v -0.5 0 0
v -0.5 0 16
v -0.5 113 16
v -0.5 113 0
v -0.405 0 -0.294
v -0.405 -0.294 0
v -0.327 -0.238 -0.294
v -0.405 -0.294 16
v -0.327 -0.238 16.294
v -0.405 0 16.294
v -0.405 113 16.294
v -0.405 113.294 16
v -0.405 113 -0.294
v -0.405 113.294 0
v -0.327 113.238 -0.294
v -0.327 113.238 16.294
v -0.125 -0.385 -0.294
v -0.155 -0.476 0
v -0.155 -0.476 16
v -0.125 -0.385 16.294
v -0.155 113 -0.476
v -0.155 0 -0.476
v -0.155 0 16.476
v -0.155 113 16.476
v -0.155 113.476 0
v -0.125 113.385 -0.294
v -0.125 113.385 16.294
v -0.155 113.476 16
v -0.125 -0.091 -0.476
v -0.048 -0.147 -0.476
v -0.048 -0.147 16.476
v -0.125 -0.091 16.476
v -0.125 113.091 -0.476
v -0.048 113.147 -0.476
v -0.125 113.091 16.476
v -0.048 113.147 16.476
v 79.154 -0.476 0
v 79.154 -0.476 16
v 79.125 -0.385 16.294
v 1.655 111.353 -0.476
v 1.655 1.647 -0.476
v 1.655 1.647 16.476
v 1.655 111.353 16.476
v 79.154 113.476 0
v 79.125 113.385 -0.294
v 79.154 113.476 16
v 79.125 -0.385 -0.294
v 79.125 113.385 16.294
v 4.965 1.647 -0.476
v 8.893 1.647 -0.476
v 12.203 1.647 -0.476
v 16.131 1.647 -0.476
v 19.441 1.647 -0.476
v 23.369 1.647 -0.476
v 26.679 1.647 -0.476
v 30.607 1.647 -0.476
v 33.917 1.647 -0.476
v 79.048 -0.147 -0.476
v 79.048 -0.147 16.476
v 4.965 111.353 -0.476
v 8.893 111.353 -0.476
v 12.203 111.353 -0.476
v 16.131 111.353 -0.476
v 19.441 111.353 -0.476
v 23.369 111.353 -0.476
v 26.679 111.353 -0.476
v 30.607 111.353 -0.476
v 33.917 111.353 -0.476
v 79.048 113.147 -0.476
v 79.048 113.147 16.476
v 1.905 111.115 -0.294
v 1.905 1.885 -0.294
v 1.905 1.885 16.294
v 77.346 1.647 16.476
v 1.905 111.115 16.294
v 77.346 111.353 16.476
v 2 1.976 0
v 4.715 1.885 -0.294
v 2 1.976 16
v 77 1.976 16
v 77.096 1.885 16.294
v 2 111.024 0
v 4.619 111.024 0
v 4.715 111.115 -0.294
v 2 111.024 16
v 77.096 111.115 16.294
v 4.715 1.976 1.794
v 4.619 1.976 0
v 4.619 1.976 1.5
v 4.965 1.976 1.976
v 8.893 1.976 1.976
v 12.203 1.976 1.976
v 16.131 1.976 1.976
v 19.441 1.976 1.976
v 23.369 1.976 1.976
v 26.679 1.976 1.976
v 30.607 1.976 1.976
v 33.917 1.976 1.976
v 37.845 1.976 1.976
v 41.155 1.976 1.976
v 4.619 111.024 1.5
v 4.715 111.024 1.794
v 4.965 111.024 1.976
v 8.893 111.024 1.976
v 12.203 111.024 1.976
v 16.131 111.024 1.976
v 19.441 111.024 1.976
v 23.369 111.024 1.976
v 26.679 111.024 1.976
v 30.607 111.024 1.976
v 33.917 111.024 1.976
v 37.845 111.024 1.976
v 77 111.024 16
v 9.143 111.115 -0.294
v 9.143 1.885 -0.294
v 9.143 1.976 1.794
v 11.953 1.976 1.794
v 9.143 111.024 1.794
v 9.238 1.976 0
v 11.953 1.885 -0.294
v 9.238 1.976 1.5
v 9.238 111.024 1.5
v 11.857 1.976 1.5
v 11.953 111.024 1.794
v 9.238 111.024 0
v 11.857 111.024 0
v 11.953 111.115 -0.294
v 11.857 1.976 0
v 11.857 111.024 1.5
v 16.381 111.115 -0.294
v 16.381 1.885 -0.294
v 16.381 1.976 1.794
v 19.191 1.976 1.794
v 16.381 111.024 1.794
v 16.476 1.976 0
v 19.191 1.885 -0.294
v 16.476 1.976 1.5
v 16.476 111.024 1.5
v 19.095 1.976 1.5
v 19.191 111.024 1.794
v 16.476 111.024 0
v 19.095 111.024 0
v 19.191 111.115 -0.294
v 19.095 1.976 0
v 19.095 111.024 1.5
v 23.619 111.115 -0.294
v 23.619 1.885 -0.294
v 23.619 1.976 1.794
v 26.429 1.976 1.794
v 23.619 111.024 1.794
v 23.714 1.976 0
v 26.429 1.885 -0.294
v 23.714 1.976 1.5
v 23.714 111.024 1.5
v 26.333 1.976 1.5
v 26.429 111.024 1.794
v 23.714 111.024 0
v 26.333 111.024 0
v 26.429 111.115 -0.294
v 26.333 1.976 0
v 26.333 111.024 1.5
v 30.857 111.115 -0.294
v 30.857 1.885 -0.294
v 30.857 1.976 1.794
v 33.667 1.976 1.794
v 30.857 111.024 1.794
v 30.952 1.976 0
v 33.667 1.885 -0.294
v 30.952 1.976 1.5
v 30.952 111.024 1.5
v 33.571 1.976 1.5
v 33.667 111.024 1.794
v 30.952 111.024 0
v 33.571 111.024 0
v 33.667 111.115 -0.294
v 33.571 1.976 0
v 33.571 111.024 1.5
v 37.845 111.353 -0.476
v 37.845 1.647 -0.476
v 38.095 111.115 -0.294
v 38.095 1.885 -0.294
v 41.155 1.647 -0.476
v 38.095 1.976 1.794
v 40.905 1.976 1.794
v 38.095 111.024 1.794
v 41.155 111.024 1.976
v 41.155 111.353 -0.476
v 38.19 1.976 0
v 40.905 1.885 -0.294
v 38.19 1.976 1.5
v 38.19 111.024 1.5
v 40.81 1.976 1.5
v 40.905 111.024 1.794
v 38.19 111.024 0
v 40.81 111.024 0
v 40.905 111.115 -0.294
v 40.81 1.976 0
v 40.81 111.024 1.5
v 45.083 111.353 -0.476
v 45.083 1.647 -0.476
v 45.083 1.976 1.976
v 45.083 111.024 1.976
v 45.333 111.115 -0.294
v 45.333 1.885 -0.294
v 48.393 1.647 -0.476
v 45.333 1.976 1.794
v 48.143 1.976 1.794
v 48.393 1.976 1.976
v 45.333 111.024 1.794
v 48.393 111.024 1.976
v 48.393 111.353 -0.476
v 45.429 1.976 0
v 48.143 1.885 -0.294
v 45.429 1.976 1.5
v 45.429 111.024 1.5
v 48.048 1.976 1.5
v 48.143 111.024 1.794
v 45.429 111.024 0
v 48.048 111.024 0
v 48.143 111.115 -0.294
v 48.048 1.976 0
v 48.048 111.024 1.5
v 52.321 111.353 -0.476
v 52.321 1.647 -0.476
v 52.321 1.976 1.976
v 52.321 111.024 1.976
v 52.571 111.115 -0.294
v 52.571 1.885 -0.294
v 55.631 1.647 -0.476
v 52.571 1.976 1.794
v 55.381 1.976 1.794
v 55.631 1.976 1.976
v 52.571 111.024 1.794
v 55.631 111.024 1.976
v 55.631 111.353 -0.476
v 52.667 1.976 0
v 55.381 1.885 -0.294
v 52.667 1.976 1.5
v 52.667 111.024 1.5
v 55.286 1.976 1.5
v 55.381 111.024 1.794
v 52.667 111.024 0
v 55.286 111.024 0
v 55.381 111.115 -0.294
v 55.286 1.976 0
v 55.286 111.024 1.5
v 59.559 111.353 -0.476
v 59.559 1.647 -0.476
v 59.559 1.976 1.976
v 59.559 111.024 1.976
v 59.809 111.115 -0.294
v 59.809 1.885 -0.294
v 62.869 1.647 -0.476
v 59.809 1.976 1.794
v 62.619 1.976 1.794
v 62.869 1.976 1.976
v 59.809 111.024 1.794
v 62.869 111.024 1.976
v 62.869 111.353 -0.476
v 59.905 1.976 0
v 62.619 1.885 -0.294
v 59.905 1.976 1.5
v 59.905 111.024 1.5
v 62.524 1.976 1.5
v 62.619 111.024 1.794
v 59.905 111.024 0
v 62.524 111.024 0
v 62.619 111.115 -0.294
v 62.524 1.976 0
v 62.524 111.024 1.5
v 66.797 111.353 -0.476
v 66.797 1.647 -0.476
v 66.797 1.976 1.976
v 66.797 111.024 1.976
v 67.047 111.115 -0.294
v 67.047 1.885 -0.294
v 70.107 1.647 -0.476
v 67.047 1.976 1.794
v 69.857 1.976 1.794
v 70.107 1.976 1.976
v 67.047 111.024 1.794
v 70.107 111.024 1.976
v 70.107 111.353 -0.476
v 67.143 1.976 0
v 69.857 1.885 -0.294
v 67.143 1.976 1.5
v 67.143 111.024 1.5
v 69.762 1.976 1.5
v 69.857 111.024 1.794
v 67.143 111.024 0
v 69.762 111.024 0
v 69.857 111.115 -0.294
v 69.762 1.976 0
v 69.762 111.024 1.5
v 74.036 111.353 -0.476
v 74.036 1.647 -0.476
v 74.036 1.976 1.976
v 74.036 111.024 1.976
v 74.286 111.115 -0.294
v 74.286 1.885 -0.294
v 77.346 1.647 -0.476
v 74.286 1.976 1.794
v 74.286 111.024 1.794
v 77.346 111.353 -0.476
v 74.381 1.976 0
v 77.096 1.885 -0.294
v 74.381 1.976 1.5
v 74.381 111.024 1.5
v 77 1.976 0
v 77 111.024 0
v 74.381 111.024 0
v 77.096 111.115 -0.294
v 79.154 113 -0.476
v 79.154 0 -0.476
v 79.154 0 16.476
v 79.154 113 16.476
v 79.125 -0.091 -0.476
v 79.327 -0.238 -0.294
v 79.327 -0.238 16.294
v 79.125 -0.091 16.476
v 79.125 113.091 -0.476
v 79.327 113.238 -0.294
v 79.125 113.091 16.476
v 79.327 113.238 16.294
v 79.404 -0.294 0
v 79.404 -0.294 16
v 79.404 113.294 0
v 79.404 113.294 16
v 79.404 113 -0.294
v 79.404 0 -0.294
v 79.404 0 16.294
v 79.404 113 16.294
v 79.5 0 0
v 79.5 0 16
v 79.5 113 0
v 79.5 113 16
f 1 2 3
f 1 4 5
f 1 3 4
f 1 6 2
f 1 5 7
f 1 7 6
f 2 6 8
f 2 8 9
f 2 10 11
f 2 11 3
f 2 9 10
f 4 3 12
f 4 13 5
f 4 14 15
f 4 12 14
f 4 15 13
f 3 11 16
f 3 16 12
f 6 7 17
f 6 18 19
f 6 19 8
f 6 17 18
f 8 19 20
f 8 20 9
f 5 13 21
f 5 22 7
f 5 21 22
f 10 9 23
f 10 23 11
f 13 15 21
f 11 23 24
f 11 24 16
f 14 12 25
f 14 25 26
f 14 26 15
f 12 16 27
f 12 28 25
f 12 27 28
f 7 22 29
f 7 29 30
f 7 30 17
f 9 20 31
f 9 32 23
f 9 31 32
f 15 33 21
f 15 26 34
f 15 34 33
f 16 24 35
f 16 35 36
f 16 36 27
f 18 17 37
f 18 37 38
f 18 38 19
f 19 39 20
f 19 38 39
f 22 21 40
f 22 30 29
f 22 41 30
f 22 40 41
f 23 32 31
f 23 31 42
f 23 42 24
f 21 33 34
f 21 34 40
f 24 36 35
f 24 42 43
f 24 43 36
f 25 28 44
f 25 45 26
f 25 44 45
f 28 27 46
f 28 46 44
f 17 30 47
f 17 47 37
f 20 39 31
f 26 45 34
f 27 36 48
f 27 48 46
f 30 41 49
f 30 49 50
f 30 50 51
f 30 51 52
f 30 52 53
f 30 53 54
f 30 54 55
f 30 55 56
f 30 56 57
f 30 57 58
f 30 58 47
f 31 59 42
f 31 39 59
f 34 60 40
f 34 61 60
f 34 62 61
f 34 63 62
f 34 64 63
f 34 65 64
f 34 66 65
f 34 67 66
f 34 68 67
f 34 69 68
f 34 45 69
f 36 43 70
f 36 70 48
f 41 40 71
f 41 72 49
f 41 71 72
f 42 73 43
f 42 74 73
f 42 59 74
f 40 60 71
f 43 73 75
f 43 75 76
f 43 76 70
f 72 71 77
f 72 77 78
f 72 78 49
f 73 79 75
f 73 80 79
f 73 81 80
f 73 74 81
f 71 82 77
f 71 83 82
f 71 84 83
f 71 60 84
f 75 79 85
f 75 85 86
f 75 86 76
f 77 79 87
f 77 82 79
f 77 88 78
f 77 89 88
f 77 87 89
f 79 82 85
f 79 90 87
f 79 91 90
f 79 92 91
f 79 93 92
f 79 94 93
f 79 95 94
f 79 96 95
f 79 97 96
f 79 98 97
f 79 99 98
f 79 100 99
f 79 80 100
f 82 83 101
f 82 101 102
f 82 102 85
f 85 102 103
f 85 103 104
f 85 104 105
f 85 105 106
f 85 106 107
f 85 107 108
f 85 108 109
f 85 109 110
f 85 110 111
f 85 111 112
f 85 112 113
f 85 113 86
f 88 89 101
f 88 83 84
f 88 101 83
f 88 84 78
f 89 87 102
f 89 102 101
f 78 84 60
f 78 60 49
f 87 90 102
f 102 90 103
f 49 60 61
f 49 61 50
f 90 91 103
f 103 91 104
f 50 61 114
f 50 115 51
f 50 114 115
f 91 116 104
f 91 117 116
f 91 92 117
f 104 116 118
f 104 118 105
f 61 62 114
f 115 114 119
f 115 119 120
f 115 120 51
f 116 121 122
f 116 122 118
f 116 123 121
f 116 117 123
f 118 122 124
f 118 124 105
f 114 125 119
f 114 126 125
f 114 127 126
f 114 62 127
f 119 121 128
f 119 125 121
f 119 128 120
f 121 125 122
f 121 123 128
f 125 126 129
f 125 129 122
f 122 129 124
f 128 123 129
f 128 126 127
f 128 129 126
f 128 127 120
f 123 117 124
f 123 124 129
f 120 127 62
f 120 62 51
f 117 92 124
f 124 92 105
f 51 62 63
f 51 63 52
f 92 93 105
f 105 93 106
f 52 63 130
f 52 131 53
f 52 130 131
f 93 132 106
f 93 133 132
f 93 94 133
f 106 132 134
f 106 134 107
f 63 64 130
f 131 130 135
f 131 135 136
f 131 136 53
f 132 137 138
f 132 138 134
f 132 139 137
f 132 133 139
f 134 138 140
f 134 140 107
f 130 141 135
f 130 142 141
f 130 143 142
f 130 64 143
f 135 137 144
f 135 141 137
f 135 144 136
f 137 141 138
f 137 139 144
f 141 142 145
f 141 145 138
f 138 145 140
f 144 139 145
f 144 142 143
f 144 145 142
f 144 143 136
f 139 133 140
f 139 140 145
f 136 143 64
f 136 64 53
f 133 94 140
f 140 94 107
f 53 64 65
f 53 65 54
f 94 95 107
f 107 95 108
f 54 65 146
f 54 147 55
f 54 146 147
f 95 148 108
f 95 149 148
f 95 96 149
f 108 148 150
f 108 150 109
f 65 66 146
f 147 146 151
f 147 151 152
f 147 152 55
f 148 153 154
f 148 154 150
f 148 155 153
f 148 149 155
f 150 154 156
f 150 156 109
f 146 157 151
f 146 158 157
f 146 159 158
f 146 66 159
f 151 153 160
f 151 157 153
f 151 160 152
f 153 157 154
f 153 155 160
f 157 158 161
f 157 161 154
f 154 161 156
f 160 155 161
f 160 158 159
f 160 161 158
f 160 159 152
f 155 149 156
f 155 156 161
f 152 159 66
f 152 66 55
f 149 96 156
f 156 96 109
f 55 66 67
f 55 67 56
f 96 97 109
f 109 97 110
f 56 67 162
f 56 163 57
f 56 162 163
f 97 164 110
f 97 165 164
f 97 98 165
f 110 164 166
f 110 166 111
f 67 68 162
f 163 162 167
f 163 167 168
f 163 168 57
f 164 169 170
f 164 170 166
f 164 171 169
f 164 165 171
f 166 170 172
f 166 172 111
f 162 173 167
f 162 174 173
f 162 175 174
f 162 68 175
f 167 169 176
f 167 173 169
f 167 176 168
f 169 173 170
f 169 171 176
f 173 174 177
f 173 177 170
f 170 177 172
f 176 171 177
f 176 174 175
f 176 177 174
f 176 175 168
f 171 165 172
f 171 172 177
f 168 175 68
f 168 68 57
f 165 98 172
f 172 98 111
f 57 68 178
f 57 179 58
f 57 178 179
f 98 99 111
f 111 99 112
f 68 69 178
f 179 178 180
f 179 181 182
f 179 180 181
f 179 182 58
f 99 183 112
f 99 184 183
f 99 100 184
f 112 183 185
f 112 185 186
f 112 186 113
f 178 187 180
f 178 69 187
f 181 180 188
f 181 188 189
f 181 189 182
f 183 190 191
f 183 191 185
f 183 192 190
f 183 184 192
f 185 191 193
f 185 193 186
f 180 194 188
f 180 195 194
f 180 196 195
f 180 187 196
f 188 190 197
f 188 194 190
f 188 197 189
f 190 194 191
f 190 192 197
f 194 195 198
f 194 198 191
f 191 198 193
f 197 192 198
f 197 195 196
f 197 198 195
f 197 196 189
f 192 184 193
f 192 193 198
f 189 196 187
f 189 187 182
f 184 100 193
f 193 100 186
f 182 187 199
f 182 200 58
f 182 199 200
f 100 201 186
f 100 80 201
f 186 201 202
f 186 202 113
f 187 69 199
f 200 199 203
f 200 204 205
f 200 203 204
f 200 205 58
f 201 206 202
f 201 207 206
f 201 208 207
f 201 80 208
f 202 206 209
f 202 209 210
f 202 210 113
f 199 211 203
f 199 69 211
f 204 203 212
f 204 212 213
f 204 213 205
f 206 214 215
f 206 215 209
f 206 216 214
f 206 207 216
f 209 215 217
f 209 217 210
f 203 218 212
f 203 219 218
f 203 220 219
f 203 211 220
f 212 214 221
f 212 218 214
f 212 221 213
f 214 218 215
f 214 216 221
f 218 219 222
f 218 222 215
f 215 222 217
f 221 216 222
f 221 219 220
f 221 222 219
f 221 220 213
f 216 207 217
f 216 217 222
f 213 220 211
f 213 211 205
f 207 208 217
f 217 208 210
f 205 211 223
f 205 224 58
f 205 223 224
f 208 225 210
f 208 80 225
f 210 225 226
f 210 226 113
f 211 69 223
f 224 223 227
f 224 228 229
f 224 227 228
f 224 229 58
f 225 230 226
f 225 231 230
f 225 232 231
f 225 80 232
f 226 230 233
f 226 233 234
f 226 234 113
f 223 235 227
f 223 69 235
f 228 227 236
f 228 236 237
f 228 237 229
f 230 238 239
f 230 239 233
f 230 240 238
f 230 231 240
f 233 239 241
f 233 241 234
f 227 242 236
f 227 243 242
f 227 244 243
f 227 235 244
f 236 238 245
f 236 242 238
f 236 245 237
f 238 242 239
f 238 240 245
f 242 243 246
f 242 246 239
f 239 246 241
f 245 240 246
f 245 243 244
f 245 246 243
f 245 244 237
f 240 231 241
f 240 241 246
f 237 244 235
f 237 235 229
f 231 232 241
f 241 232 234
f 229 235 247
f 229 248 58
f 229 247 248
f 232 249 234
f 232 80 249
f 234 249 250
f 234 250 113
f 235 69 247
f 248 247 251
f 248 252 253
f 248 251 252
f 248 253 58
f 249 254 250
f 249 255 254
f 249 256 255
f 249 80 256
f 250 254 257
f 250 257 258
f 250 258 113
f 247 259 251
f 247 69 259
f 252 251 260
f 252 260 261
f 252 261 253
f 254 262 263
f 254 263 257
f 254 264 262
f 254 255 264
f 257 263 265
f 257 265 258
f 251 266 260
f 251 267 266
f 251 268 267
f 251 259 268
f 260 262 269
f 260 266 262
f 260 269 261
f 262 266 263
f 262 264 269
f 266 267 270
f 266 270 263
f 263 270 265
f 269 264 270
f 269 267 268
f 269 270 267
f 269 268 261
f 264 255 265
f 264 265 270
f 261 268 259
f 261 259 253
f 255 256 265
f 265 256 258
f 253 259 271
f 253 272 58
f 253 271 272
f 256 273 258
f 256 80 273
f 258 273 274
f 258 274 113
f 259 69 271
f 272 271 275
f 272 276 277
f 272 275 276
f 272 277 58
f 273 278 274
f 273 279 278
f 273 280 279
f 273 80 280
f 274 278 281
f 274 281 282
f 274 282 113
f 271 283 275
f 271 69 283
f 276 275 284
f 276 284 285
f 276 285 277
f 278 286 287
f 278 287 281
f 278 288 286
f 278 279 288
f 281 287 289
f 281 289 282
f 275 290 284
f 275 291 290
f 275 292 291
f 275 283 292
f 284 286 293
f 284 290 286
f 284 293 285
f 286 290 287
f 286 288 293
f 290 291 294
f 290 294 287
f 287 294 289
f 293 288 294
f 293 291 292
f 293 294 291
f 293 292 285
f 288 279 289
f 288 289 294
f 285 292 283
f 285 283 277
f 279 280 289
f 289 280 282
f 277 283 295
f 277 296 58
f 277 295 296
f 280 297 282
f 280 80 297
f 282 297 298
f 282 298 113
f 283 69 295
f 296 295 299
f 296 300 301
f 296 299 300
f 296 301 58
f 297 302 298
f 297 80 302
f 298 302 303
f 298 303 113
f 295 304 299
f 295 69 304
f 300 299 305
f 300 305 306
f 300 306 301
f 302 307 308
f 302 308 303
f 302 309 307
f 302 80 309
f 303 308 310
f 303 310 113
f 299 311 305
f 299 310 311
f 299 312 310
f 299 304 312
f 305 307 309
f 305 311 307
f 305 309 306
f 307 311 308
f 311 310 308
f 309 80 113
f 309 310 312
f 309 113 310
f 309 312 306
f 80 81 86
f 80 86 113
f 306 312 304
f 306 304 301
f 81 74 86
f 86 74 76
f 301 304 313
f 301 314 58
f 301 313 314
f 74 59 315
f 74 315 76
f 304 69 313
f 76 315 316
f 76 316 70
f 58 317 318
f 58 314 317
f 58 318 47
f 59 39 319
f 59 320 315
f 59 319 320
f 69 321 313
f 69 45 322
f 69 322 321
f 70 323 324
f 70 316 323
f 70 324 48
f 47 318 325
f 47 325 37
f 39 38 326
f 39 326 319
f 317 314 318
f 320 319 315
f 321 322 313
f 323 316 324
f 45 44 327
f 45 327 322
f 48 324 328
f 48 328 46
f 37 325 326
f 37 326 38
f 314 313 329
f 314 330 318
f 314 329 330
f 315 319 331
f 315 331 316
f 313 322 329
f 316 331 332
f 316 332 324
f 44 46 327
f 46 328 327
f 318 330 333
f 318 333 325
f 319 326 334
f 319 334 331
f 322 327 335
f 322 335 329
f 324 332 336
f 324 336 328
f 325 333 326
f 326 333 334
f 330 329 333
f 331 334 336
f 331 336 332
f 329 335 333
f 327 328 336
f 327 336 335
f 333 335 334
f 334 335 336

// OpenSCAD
/* [Sponge dimensions] */
width=76.0;
depth=110.0;
height=26.0;

// [Holder settings]
// Holder thickness
thickness=2.0;
// Number of inner grid bars
grid_count = 10.0;

/* [Hidden] */
_t = thickness - 0.5;
holder_w = width + (2*_t);
holder_d = depth + (2*_t);
holder_h = height/2 + (2*_t);

cut = 0.1;

// Grid
total_grids = grid_count*2 + 1;
grid_width = width / total_grids;

// Holder
module holder() {
    difference() {
        cube([holder_w, holder_d, holder_h]);
        
        translate([_t, _t, _t])
            cube([width, depth, height]);
        
        translate([_t, _t, -cut])
        union() {
            for (g = [0:total_grids-1]) {
                if (g % 2 == 0) {
                    translate([g*grid_width, 0, 0])
                    cube([grid_width, depth, 3*_t]);
                }
            }
        }
    }
}

minkowski() {
    holder();
    sphere(0.5, $fn=10);
}
